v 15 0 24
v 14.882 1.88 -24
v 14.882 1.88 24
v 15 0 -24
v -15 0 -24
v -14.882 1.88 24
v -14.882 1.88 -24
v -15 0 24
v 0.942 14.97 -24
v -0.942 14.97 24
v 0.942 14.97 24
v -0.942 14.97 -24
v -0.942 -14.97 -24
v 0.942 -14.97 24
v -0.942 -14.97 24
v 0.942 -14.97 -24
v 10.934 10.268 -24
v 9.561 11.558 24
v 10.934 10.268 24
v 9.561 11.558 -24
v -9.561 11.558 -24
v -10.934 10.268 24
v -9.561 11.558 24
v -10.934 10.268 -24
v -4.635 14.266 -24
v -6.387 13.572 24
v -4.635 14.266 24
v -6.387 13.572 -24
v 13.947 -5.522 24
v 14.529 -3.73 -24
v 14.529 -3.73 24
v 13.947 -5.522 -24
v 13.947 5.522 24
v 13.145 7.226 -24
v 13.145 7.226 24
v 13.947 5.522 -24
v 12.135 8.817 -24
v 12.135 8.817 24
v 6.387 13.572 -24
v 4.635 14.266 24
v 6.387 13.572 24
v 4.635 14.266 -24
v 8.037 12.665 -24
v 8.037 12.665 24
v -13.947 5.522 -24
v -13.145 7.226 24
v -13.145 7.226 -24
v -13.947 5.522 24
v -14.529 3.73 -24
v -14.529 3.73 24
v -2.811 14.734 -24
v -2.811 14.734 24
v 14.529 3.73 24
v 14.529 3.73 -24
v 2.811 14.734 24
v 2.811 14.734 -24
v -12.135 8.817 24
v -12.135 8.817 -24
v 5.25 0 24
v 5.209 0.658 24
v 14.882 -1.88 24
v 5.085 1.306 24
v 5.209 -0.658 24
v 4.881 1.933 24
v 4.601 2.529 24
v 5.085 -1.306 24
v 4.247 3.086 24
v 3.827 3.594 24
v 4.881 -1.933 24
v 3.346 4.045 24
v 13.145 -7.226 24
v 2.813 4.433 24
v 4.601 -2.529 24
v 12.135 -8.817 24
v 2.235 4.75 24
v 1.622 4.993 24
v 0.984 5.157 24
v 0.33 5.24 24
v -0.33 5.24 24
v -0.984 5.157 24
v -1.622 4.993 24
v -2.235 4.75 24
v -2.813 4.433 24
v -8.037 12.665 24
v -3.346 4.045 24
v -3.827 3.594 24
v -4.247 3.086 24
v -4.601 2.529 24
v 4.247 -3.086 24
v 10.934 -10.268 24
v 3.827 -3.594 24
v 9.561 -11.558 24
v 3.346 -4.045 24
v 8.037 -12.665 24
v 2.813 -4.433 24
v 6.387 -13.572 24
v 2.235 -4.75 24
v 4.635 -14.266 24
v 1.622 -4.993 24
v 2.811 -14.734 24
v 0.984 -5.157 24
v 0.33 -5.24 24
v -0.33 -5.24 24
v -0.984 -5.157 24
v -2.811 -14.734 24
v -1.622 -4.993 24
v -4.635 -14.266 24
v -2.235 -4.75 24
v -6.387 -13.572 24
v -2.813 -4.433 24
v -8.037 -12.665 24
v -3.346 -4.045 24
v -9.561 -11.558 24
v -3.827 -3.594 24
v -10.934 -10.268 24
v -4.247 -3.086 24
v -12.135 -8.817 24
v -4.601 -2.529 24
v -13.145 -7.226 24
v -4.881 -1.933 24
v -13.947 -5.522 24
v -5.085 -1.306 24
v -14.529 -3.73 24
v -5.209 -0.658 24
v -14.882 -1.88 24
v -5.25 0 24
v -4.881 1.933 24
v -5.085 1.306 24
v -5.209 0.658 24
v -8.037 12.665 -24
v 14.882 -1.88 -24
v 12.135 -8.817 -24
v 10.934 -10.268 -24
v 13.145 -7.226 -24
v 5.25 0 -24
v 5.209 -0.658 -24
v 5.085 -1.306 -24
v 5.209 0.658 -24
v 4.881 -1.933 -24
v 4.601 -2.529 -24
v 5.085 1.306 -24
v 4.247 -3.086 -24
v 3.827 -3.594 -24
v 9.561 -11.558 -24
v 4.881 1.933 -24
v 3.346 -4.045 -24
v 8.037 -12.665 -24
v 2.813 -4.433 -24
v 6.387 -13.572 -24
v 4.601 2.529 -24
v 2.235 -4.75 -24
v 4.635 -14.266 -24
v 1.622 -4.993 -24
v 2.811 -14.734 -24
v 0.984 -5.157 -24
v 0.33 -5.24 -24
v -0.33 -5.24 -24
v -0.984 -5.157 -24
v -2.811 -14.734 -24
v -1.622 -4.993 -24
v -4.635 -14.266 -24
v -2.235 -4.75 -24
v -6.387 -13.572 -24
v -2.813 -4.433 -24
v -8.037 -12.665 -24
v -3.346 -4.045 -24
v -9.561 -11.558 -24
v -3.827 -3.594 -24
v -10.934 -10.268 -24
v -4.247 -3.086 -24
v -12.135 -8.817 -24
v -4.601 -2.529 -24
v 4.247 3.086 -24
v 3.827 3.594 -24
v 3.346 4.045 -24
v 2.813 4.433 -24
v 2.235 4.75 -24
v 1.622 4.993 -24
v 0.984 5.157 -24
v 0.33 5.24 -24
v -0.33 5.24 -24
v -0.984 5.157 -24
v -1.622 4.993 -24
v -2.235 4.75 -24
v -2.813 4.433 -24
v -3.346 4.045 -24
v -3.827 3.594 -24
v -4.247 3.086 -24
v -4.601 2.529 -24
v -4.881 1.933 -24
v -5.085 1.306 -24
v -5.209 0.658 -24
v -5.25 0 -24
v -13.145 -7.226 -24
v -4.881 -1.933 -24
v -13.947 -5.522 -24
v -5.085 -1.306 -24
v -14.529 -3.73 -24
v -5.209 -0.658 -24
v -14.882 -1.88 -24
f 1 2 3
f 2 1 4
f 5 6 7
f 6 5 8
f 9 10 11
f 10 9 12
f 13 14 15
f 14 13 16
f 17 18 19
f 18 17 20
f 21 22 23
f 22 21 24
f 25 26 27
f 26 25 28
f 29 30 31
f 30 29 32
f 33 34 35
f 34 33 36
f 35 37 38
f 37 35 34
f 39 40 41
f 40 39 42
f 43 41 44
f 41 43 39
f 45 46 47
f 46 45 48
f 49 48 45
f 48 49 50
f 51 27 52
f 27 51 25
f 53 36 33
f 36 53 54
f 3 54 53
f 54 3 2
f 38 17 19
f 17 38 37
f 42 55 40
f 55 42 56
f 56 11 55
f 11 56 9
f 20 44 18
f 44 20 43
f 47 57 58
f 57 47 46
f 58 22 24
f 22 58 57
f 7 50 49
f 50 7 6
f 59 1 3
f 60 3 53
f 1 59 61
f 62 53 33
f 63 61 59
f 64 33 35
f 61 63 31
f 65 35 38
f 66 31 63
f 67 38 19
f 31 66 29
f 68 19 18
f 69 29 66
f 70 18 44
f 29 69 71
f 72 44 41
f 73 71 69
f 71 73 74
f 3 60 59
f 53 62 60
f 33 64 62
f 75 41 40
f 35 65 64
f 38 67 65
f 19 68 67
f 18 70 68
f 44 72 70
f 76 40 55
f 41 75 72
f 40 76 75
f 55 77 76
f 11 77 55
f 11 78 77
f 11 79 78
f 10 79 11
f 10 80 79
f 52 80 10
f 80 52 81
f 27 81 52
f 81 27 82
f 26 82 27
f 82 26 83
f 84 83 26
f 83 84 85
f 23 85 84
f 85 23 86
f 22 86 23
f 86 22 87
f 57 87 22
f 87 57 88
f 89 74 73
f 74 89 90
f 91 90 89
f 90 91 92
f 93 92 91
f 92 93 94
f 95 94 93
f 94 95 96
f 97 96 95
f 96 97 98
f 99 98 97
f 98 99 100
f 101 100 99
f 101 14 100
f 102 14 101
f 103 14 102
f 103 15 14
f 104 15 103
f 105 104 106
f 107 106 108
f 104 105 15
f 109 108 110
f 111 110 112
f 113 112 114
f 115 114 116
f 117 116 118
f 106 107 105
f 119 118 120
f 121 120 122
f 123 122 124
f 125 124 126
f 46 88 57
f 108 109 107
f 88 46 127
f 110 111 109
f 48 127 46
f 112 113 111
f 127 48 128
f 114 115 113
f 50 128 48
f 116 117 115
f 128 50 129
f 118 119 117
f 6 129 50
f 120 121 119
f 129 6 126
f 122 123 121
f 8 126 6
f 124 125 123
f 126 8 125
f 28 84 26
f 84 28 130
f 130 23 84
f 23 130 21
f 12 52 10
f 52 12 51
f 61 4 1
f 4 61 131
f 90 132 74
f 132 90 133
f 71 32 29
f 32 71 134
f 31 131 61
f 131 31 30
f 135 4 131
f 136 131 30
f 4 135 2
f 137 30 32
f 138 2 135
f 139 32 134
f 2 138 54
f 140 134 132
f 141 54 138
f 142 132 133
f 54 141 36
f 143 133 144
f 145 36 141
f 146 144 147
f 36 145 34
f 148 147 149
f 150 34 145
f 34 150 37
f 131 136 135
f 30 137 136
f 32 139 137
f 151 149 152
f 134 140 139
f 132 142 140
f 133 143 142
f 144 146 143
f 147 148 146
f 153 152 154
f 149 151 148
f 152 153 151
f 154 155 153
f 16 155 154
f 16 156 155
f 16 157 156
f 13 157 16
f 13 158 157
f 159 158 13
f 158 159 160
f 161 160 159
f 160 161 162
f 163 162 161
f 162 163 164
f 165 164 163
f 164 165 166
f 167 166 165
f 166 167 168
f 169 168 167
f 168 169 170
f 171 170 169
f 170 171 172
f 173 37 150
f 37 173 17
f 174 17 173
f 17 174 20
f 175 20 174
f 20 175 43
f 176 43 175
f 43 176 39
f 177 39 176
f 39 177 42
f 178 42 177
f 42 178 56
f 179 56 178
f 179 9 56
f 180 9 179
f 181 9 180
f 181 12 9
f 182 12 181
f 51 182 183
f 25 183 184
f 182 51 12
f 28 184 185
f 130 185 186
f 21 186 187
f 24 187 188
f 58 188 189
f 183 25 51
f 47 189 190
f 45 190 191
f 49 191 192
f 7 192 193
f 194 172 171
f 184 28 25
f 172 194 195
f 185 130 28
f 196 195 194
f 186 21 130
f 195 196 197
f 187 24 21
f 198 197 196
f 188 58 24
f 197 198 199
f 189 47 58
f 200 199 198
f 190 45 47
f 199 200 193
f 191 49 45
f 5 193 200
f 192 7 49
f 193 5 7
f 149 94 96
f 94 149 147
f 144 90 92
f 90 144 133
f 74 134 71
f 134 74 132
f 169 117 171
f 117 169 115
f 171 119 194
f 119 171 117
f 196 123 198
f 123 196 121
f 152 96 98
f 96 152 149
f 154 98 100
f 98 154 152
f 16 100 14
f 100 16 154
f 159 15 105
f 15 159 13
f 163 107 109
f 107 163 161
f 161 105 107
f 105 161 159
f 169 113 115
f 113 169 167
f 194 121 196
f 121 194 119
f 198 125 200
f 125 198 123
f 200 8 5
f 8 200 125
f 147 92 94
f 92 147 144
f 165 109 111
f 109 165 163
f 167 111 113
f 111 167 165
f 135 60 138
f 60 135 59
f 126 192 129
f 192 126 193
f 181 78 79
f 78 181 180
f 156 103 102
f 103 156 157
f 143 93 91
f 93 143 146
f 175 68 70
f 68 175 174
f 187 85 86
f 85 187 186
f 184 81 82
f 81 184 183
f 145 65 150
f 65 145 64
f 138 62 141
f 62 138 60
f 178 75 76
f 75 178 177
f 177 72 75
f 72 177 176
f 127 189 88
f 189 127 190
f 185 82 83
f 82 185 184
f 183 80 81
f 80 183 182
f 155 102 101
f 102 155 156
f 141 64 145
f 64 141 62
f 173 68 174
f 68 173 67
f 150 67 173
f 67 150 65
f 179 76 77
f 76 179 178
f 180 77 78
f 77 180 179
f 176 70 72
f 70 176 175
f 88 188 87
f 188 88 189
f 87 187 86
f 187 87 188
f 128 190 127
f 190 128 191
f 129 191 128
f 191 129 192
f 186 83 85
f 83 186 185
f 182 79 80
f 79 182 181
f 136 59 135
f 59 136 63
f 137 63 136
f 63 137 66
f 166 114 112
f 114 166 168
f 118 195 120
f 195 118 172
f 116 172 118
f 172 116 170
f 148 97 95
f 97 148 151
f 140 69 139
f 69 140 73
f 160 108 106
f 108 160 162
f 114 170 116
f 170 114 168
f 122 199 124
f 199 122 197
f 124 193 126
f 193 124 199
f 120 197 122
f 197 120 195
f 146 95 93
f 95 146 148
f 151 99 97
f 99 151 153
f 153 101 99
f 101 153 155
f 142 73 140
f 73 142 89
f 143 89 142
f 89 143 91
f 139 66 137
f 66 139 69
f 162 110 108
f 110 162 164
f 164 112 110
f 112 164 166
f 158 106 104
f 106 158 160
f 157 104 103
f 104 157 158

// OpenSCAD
$fn = 50;


difference() {
	union() {
		translate(v = [0, 0, -24.0000000000]) {
			cylinder(h = 48, r = 15.0000000000);
		}
	}
	union() {
		translate(v = [0, 0, -100.0000000000]) {
			cylinder(h = 200, r = 5.2500000000);
		}
	}
}
